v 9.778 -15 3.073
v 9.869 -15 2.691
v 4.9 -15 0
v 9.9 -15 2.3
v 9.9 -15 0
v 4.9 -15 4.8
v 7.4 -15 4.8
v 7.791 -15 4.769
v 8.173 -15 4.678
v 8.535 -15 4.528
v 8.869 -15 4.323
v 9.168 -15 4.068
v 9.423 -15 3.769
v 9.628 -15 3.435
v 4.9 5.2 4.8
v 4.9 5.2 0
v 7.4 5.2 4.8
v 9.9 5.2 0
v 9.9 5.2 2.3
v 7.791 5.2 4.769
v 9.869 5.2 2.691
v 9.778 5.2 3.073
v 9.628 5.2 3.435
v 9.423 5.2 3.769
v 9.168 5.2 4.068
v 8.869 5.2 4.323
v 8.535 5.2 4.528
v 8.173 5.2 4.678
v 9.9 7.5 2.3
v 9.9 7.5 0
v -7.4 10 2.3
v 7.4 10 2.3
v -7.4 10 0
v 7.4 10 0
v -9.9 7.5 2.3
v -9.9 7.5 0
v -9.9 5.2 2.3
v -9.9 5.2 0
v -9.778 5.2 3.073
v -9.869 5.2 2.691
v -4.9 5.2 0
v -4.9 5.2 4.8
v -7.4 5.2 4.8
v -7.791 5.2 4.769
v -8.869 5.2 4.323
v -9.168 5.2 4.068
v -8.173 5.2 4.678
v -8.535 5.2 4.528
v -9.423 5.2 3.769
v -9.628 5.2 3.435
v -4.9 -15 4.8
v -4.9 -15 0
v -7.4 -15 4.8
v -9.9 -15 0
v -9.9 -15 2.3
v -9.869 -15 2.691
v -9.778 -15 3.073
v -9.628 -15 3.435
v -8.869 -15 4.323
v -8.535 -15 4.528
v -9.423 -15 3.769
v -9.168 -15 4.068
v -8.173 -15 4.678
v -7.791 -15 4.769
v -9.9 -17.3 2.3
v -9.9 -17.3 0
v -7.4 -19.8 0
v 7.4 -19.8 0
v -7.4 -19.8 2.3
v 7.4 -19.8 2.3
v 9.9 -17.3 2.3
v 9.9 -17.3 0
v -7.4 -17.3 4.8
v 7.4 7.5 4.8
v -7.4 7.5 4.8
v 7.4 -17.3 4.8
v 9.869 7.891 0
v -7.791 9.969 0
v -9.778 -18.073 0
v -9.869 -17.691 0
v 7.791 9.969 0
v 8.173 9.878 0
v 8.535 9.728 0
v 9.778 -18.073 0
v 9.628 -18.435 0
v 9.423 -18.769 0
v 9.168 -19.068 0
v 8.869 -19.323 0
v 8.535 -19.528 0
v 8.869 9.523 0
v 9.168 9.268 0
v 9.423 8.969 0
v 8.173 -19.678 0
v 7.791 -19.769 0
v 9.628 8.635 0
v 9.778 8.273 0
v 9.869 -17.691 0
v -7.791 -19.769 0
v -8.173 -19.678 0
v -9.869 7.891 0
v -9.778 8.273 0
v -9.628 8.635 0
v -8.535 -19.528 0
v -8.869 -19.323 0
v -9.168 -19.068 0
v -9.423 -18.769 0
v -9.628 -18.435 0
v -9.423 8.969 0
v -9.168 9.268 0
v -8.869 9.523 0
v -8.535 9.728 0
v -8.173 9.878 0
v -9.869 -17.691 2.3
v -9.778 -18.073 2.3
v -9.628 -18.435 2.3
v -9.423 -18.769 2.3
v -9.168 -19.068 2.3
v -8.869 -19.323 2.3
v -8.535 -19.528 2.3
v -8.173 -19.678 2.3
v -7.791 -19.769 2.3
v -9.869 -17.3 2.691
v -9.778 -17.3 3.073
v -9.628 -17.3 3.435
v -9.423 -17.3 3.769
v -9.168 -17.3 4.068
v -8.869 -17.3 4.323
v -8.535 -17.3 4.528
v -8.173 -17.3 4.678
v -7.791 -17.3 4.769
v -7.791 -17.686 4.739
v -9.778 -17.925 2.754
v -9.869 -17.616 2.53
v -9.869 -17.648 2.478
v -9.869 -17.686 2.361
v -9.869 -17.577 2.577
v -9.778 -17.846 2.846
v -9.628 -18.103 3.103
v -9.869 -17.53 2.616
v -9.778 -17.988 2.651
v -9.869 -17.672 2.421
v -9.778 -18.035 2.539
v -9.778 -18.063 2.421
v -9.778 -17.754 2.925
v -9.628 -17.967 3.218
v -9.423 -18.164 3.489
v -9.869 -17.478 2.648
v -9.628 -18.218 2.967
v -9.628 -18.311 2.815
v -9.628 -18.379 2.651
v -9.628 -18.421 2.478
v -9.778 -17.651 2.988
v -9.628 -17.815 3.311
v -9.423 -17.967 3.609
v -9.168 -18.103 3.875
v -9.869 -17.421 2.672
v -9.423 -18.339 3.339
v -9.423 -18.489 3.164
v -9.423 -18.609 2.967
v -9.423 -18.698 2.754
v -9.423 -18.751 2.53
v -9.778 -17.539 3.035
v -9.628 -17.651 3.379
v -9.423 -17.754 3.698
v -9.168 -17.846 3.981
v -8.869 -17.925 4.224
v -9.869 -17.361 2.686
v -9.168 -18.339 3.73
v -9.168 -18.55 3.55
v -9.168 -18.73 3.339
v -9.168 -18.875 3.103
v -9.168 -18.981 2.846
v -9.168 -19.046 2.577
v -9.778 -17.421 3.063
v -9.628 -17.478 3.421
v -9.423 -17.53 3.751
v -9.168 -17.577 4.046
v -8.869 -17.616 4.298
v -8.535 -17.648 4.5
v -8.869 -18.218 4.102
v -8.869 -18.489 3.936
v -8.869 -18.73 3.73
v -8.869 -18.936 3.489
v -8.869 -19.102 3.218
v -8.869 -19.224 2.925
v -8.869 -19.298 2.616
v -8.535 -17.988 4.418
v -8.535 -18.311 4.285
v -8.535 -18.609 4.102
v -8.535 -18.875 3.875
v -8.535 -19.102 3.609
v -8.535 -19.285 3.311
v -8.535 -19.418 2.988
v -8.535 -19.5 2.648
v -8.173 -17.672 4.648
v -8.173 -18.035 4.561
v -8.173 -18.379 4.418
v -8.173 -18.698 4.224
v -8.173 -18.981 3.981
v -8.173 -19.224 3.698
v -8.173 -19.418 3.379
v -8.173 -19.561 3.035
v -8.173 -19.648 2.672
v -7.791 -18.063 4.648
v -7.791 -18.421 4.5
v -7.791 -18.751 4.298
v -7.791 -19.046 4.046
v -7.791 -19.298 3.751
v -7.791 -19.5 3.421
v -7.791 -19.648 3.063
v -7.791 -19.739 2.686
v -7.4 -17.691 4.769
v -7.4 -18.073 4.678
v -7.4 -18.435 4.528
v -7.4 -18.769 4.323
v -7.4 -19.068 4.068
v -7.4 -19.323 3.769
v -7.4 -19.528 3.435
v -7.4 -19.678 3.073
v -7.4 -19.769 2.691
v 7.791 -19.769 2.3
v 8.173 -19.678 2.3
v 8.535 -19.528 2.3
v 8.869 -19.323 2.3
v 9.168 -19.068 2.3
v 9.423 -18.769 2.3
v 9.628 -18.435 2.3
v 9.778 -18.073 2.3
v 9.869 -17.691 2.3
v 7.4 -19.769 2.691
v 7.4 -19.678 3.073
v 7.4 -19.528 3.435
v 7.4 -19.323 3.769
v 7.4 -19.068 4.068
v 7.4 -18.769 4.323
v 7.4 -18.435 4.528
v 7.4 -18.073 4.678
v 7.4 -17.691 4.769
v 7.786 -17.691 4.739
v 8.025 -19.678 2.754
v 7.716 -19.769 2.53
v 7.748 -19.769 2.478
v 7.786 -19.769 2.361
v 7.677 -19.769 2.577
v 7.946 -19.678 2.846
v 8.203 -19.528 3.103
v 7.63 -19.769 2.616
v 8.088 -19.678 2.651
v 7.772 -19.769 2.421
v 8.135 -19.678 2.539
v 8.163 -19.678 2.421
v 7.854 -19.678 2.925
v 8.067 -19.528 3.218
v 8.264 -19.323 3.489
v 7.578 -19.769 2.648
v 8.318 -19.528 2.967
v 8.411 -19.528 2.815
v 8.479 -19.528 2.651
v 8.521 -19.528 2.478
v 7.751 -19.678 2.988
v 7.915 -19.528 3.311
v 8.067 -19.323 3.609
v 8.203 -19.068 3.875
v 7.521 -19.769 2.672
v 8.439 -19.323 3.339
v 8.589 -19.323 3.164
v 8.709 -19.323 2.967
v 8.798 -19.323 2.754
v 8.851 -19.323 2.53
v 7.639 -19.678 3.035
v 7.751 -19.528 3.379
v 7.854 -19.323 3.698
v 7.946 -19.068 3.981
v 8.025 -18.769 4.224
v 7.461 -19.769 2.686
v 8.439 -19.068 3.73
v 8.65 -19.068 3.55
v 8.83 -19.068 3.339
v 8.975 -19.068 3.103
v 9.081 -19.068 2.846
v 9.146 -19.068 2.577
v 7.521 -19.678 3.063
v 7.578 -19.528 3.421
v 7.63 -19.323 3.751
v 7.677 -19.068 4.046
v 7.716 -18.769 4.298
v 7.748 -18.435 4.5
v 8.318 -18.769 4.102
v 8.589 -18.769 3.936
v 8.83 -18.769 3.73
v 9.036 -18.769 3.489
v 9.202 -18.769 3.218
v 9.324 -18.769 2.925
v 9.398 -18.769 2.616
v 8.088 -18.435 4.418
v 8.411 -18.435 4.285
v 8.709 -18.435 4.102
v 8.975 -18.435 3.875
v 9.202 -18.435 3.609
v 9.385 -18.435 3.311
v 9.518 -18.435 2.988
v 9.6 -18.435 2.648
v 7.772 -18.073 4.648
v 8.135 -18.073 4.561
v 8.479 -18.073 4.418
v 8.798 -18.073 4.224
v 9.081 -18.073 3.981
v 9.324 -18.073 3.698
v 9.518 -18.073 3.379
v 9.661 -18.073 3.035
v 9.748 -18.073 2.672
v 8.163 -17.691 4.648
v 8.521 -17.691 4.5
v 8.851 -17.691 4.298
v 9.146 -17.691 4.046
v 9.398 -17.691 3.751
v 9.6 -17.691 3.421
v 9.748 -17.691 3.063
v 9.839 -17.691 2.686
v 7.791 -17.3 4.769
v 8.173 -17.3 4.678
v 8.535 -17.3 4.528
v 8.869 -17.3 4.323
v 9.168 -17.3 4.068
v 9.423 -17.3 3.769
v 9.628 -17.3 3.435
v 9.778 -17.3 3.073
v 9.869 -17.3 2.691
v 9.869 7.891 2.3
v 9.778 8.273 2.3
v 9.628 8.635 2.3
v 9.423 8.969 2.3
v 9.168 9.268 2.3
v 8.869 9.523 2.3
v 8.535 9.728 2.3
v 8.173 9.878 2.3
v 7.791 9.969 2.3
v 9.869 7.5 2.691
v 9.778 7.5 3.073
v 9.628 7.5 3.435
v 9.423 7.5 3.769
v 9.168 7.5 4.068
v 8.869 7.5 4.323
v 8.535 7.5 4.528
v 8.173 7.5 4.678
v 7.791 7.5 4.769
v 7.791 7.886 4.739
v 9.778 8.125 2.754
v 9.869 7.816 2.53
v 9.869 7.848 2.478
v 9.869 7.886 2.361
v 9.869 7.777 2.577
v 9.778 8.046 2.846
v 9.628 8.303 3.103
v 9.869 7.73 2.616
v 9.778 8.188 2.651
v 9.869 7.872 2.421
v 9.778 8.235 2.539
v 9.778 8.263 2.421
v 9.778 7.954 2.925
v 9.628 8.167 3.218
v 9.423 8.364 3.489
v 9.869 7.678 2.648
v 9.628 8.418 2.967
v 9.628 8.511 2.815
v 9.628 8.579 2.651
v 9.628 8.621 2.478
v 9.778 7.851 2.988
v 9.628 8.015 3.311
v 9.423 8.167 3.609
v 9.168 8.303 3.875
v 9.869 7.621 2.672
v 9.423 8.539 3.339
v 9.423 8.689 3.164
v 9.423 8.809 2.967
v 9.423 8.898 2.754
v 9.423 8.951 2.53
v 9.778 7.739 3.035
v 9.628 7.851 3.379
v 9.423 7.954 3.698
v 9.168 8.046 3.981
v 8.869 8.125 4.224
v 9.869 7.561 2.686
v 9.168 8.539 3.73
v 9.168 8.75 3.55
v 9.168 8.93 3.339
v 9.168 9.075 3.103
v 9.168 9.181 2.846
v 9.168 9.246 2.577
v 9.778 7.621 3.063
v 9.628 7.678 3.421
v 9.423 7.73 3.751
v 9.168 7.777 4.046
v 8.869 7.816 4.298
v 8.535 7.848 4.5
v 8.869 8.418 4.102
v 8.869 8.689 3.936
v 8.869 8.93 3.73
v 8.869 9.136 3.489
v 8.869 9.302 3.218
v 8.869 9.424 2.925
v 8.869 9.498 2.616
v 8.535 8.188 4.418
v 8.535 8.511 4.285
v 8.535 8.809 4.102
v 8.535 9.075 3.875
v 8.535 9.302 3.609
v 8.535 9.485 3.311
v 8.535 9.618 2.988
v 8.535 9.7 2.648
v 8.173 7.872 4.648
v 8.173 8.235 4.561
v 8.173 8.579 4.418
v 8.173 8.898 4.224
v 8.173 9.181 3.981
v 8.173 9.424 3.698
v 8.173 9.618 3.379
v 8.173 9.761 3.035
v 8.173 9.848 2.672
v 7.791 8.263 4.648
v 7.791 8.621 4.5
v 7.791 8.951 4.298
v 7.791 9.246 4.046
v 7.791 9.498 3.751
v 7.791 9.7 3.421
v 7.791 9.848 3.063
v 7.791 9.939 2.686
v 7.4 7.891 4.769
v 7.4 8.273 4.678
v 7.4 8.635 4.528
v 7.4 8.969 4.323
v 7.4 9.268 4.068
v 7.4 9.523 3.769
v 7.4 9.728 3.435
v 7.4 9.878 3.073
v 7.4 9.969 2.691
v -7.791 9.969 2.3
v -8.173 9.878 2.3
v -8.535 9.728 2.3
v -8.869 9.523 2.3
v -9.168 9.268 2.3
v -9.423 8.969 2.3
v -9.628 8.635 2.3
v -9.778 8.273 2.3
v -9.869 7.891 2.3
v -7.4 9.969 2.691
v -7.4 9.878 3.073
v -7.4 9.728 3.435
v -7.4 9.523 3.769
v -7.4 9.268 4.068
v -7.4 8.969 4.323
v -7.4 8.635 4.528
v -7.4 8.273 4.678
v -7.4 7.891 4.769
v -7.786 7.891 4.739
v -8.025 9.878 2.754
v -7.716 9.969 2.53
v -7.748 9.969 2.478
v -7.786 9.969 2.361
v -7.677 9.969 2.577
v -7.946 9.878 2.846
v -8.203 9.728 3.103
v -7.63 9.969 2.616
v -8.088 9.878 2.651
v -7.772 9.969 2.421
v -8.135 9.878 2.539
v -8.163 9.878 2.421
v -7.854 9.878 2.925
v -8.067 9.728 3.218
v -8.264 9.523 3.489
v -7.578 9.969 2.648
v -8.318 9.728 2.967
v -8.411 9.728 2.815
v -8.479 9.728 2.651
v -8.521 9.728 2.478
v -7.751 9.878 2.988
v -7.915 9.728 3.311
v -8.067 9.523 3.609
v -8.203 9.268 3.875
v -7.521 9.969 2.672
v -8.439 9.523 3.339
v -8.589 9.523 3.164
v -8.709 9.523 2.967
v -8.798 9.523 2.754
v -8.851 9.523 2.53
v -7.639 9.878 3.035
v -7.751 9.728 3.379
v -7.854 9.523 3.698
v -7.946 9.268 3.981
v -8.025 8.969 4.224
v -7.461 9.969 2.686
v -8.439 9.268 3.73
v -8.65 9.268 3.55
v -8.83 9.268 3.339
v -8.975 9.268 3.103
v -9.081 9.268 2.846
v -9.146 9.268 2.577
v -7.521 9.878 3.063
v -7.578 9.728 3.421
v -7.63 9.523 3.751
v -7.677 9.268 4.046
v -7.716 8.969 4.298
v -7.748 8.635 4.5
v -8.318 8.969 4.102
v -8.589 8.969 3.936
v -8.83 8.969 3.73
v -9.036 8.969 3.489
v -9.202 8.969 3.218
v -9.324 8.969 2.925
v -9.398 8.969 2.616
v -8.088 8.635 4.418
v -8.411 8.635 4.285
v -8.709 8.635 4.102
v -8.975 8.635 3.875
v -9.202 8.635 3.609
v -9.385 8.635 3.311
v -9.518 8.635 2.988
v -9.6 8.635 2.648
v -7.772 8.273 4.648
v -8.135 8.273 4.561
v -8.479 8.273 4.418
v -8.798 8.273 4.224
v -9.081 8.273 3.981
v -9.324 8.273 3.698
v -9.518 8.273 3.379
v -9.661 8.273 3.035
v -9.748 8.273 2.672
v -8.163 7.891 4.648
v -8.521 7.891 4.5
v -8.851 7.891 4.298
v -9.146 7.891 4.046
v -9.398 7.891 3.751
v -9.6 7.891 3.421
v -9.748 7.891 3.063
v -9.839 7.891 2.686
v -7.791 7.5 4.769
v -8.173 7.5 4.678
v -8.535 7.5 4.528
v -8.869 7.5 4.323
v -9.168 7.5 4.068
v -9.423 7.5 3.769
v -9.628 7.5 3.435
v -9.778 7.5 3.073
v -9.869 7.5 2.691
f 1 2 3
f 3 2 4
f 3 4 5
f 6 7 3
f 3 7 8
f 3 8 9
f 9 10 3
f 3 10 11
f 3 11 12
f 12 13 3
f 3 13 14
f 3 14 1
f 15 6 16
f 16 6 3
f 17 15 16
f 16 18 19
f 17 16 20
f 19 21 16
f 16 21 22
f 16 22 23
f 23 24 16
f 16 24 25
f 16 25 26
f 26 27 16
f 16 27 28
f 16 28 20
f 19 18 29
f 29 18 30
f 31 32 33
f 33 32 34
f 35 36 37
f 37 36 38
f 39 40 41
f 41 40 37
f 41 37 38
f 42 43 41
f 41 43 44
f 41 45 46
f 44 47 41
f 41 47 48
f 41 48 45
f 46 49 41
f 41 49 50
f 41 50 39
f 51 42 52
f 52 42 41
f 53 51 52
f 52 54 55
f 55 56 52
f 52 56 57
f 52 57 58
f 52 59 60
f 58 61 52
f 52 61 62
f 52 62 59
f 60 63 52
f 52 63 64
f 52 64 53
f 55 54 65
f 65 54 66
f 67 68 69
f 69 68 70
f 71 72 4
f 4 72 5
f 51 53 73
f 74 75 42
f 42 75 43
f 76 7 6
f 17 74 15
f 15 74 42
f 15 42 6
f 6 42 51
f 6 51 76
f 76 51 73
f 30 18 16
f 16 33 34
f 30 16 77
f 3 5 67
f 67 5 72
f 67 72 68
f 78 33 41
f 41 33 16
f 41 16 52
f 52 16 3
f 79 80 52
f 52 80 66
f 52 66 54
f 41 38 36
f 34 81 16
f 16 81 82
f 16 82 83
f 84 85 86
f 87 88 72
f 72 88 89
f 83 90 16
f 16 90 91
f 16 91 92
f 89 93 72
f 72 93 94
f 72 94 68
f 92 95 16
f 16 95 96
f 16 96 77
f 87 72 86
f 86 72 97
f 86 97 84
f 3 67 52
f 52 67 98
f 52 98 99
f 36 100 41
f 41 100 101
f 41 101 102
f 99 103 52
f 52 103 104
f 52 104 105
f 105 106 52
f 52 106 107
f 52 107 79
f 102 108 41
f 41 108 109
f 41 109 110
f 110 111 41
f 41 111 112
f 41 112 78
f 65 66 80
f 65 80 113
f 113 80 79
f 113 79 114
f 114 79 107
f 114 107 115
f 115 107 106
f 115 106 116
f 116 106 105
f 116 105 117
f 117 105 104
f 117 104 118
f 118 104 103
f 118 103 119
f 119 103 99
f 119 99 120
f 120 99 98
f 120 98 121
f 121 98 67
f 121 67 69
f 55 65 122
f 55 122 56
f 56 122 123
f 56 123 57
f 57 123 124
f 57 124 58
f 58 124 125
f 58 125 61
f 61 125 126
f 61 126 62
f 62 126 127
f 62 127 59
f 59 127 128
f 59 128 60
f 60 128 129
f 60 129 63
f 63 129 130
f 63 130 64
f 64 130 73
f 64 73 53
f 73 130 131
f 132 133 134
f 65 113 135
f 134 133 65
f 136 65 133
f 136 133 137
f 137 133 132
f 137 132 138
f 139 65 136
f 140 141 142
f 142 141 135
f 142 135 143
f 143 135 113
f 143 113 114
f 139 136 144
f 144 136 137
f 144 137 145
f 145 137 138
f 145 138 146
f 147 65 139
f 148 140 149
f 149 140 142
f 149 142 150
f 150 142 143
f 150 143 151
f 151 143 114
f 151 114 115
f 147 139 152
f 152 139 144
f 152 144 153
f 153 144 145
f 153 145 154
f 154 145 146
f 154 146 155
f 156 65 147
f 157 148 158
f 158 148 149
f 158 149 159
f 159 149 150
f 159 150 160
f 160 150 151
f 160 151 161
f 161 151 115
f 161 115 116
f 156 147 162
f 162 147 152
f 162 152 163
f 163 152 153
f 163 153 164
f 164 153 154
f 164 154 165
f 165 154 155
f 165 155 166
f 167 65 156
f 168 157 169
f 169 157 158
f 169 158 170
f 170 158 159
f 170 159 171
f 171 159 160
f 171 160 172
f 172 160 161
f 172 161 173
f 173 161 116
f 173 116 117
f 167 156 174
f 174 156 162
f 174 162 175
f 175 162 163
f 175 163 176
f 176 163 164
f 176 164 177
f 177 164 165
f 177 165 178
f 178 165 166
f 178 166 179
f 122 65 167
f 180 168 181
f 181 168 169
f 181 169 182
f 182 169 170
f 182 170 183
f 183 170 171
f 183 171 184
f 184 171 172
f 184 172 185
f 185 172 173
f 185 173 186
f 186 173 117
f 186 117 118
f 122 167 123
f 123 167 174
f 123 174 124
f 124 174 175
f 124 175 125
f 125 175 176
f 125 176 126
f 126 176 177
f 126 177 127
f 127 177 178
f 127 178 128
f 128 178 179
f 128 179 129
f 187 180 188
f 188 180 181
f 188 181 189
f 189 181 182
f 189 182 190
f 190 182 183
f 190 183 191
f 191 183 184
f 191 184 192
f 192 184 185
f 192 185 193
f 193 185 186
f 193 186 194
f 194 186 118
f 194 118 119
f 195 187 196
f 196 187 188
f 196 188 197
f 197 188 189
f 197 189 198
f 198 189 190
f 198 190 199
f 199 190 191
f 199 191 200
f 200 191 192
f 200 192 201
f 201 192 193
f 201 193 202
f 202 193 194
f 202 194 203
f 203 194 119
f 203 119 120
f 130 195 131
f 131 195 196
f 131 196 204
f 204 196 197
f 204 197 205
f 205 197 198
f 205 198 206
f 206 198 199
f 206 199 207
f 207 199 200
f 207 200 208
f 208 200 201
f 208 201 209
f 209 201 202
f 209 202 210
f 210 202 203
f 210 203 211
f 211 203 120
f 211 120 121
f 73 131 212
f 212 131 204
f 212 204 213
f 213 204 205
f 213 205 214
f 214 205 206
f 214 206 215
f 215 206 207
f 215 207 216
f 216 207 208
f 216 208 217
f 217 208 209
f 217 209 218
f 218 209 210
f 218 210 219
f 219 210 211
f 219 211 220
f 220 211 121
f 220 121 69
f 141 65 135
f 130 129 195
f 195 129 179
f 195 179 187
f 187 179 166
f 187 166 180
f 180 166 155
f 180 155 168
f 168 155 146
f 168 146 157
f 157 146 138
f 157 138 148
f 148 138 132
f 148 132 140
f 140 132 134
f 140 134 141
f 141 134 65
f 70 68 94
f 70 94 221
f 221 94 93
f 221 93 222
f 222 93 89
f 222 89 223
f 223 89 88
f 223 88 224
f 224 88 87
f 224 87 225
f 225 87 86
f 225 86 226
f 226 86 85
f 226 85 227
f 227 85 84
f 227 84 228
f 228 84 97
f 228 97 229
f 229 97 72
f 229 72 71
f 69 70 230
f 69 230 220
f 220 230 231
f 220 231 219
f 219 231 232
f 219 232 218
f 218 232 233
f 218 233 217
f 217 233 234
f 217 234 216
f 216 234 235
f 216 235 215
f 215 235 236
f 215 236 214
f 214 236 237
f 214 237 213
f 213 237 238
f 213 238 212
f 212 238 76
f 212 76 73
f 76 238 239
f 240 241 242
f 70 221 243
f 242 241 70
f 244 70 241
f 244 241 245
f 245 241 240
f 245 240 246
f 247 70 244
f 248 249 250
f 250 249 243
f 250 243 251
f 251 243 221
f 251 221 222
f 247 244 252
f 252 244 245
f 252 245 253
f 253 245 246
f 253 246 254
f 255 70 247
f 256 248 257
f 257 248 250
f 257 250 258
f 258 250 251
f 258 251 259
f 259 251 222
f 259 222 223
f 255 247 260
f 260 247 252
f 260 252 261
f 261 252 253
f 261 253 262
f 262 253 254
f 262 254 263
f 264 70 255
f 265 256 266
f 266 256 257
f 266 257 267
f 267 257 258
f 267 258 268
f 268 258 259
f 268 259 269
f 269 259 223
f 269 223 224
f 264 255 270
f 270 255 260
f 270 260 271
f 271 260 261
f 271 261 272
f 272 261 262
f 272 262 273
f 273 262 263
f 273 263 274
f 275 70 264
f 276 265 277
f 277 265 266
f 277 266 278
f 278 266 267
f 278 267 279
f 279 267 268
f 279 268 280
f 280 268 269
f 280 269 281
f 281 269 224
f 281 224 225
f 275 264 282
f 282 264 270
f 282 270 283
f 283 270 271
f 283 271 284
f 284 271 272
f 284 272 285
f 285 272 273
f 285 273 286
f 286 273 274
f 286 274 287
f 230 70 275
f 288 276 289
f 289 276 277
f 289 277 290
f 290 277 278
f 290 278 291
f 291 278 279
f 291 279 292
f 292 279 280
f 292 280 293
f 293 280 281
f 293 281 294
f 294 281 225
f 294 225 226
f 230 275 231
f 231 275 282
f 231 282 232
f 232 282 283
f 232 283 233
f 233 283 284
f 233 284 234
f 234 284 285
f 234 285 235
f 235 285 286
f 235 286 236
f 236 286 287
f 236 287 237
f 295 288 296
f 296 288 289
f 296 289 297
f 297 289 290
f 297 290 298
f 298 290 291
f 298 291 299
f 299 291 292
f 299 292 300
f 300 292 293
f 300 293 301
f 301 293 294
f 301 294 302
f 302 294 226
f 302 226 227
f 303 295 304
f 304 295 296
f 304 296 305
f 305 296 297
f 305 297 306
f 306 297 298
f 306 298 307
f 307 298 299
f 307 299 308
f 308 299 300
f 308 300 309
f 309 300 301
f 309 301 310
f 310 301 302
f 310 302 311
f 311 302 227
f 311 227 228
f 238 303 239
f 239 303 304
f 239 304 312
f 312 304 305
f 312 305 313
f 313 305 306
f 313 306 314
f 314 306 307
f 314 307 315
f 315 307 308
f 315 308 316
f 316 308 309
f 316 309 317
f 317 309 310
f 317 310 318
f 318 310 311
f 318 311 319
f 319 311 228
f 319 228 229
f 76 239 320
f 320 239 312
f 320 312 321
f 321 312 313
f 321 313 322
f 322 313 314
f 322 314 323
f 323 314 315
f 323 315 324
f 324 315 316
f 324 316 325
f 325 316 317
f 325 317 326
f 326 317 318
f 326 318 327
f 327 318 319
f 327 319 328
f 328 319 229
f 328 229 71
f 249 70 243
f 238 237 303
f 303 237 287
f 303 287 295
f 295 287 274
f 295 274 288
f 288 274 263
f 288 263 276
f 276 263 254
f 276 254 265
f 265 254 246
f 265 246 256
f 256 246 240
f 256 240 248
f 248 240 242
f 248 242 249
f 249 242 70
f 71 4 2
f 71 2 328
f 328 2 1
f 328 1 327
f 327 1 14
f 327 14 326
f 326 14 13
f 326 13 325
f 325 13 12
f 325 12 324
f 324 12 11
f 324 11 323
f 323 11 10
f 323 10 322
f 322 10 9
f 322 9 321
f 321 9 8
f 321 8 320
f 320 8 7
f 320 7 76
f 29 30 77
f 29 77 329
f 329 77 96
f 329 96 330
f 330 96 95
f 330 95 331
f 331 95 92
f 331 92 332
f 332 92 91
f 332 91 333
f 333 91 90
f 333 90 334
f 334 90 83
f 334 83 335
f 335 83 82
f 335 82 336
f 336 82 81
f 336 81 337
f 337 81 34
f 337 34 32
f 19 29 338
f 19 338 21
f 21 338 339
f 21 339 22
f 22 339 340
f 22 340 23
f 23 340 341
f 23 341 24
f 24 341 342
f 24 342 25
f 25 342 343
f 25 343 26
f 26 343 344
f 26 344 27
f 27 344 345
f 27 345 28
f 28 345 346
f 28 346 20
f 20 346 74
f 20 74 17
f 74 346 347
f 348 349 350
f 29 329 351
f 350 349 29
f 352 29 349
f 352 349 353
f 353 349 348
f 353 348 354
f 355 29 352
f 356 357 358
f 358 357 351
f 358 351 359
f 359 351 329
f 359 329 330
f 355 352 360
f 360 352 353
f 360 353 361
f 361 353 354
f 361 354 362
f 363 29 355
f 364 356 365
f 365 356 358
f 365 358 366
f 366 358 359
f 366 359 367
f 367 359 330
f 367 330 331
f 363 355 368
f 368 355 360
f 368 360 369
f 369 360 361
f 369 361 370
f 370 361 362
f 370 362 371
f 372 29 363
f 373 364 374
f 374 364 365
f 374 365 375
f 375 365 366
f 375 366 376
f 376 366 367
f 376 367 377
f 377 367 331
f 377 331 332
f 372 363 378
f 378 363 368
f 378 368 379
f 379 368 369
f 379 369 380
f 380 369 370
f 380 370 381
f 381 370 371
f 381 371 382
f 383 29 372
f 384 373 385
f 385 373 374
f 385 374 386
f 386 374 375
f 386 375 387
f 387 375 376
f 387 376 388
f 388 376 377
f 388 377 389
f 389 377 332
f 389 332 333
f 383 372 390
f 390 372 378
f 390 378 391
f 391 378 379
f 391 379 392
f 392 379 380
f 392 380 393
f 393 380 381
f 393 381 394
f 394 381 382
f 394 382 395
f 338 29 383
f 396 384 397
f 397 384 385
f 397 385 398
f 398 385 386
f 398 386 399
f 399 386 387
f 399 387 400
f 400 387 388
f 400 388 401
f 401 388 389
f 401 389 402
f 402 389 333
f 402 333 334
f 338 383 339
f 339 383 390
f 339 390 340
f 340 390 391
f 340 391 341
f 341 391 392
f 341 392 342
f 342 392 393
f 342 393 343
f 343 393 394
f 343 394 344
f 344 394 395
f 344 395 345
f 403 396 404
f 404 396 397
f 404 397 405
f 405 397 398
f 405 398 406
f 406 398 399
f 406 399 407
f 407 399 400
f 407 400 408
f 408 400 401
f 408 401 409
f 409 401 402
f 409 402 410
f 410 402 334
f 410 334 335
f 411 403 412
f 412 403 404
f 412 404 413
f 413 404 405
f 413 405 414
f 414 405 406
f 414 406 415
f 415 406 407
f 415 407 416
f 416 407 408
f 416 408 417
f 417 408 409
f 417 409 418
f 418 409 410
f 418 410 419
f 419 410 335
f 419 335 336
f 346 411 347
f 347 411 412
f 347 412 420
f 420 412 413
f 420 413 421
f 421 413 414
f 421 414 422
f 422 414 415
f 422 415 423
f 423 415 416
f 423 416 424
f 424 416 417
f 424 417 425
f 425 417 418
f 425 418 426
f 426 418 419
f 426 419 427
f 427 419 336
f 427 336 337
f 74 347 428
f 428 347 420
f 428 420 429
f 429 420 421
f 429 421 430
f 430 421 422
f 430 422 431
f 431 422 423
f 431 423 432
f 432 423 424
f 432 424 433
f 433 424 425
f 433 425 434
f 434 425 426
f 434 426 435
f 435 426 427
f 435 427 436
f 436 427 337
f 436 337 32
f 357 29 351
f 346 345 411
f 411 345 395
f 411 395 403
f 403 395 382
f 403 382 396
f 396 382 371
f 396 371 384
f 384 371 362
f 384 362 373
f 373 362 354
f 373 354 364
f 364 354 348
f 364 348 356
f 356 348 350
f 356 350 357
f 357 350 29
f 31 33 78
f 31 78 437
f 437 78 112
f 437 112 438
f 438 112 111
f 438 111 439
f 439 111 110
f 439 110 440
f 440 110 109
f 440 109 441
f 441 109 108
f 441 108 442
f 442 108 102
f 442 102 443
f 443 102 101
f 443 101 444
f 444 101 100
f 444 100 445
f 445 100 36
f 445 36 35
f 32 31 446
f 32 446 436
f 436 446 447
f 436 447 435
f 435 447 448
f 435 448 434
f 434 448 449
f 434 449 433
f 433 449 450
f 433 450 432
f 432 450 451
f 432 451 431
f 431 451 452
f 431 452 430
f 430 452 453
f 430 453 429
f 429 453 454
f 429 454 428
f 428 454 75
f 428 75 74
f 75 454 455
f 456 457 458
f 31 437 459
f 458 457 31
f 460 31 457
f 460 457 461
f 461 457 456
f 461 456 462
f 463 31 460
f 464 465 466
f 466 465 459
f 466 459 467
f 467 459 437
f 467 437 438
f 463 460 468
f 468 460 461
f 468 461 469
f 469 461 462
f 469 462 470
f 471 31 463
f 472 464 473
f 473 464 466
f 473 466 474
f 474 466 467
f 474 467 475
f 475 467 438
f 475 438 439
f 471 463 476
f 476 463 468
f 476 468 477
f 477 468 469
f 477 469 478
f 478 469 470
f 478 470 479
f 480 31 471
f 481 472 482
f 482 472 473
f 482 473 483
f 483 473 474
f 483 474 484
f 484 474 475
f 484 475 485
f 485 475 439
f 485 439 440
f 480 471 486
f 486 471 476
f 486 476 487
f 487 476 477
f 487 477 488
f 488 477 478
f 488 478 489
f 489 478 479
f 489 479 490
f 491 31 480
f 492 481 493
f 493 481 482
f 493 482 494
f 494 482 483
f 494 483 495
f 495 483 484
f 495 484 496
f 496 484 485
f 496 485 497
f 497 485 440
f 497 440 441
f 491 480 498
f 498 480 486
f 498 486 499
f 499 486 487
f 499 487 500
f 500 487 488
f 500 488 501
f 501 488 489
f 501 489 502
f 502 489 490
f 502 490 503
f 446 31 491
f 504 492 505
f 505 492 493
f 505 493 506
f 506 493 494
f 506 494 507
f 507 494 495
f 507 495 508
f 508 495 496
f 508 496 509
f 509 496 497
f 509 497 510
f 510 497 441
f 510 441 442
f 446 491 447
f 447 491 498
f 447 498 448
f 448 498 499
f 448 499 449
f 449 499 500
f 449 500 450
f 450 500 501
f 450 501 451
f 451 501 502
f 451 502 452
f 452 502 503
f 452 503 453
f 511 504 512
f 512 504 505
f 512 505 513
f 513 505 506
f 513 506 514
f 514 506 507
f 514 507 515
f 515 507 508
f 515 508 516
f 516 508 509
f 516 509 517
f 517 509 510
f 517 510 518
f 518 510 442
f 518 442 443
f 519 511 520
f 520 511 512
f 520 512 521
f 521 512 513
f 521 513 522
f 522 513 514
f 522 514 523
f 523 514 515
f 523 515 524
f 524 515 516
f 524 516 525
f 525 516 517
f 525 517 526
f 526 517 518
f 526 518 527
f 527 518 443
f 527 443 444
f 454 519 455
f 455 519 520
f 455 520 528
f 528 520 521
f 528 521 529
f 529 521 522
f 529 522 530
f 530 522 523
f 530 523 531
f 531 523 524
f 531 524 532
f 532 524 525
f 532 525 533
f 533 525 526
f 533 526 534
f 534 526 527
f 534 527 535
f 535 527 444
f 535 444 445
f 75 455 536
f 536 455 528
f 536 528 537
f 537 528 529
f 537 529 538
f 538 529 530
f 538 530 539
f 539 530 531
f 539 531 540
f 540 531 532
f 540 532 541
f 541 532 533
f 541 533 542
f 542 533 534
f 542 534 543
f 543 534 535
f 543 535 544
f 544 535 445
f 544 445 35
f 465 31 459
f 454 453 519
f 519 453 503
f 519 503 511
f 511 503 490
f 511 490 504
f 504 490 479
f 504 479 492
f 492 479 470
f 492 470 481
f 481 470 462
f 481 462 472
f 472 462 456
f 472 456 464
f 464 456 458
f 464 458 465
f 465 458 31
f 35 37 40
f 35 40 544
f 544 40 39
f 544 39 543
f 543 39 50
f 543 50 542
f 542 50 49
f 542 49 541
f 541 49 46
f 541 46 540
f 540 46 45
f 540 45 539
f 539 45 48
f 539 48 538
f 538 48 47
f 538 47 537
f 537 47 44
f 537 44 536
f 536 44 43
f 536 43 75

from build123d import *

# Parameters (mm, degrees)
BOSS_EXTRUDE1_DEPTH = 4.8
FILLET1_R           = 2.5


with BuildPart() as part:
    # Sketch1 → Boss-Extrude1 (new body)
    with BuildSketch(Plane(origin=(0, 0, 0), x_dir=(0, 1, 0), z_dir=(0, 0, 1))):
        Polygon((-15, -4.9), (-15, -9.9), (-19.8, -9.9), (-19.8, 9.9), (-15, 9.9), (-15, 4.9), (5.2, 4.9), (5.2, 9.9), (10, 9.9), (10, -9.9), (5.2, -9.9), (5.2, -4.9), align=None)
    extrude(amount=BOSS_EXTRUDE1_DEPTH)

    # Fillet1
    fillet1_edges = [part.edges().sort_by_distance(p)[0] for p in [
        (0, -19.8, 4.8),
        (-9.9, -17.4, 4.8),
        (9.9, 10, 2.4),
        (-9.9, 10, 2.4),
        (-9.9, -19.8, 2.4),
        (9.9, -19.8, 2.4),
        (-9.9, 7.6, 4.8),
        (0, 10, 4.8),
        (9.9, 7.6, 4.8),
        (9.9, -17.4, 4.8),
    ]]
    fillet(fillet1_edges, radius=FILLET1_R)


solid = part.part
